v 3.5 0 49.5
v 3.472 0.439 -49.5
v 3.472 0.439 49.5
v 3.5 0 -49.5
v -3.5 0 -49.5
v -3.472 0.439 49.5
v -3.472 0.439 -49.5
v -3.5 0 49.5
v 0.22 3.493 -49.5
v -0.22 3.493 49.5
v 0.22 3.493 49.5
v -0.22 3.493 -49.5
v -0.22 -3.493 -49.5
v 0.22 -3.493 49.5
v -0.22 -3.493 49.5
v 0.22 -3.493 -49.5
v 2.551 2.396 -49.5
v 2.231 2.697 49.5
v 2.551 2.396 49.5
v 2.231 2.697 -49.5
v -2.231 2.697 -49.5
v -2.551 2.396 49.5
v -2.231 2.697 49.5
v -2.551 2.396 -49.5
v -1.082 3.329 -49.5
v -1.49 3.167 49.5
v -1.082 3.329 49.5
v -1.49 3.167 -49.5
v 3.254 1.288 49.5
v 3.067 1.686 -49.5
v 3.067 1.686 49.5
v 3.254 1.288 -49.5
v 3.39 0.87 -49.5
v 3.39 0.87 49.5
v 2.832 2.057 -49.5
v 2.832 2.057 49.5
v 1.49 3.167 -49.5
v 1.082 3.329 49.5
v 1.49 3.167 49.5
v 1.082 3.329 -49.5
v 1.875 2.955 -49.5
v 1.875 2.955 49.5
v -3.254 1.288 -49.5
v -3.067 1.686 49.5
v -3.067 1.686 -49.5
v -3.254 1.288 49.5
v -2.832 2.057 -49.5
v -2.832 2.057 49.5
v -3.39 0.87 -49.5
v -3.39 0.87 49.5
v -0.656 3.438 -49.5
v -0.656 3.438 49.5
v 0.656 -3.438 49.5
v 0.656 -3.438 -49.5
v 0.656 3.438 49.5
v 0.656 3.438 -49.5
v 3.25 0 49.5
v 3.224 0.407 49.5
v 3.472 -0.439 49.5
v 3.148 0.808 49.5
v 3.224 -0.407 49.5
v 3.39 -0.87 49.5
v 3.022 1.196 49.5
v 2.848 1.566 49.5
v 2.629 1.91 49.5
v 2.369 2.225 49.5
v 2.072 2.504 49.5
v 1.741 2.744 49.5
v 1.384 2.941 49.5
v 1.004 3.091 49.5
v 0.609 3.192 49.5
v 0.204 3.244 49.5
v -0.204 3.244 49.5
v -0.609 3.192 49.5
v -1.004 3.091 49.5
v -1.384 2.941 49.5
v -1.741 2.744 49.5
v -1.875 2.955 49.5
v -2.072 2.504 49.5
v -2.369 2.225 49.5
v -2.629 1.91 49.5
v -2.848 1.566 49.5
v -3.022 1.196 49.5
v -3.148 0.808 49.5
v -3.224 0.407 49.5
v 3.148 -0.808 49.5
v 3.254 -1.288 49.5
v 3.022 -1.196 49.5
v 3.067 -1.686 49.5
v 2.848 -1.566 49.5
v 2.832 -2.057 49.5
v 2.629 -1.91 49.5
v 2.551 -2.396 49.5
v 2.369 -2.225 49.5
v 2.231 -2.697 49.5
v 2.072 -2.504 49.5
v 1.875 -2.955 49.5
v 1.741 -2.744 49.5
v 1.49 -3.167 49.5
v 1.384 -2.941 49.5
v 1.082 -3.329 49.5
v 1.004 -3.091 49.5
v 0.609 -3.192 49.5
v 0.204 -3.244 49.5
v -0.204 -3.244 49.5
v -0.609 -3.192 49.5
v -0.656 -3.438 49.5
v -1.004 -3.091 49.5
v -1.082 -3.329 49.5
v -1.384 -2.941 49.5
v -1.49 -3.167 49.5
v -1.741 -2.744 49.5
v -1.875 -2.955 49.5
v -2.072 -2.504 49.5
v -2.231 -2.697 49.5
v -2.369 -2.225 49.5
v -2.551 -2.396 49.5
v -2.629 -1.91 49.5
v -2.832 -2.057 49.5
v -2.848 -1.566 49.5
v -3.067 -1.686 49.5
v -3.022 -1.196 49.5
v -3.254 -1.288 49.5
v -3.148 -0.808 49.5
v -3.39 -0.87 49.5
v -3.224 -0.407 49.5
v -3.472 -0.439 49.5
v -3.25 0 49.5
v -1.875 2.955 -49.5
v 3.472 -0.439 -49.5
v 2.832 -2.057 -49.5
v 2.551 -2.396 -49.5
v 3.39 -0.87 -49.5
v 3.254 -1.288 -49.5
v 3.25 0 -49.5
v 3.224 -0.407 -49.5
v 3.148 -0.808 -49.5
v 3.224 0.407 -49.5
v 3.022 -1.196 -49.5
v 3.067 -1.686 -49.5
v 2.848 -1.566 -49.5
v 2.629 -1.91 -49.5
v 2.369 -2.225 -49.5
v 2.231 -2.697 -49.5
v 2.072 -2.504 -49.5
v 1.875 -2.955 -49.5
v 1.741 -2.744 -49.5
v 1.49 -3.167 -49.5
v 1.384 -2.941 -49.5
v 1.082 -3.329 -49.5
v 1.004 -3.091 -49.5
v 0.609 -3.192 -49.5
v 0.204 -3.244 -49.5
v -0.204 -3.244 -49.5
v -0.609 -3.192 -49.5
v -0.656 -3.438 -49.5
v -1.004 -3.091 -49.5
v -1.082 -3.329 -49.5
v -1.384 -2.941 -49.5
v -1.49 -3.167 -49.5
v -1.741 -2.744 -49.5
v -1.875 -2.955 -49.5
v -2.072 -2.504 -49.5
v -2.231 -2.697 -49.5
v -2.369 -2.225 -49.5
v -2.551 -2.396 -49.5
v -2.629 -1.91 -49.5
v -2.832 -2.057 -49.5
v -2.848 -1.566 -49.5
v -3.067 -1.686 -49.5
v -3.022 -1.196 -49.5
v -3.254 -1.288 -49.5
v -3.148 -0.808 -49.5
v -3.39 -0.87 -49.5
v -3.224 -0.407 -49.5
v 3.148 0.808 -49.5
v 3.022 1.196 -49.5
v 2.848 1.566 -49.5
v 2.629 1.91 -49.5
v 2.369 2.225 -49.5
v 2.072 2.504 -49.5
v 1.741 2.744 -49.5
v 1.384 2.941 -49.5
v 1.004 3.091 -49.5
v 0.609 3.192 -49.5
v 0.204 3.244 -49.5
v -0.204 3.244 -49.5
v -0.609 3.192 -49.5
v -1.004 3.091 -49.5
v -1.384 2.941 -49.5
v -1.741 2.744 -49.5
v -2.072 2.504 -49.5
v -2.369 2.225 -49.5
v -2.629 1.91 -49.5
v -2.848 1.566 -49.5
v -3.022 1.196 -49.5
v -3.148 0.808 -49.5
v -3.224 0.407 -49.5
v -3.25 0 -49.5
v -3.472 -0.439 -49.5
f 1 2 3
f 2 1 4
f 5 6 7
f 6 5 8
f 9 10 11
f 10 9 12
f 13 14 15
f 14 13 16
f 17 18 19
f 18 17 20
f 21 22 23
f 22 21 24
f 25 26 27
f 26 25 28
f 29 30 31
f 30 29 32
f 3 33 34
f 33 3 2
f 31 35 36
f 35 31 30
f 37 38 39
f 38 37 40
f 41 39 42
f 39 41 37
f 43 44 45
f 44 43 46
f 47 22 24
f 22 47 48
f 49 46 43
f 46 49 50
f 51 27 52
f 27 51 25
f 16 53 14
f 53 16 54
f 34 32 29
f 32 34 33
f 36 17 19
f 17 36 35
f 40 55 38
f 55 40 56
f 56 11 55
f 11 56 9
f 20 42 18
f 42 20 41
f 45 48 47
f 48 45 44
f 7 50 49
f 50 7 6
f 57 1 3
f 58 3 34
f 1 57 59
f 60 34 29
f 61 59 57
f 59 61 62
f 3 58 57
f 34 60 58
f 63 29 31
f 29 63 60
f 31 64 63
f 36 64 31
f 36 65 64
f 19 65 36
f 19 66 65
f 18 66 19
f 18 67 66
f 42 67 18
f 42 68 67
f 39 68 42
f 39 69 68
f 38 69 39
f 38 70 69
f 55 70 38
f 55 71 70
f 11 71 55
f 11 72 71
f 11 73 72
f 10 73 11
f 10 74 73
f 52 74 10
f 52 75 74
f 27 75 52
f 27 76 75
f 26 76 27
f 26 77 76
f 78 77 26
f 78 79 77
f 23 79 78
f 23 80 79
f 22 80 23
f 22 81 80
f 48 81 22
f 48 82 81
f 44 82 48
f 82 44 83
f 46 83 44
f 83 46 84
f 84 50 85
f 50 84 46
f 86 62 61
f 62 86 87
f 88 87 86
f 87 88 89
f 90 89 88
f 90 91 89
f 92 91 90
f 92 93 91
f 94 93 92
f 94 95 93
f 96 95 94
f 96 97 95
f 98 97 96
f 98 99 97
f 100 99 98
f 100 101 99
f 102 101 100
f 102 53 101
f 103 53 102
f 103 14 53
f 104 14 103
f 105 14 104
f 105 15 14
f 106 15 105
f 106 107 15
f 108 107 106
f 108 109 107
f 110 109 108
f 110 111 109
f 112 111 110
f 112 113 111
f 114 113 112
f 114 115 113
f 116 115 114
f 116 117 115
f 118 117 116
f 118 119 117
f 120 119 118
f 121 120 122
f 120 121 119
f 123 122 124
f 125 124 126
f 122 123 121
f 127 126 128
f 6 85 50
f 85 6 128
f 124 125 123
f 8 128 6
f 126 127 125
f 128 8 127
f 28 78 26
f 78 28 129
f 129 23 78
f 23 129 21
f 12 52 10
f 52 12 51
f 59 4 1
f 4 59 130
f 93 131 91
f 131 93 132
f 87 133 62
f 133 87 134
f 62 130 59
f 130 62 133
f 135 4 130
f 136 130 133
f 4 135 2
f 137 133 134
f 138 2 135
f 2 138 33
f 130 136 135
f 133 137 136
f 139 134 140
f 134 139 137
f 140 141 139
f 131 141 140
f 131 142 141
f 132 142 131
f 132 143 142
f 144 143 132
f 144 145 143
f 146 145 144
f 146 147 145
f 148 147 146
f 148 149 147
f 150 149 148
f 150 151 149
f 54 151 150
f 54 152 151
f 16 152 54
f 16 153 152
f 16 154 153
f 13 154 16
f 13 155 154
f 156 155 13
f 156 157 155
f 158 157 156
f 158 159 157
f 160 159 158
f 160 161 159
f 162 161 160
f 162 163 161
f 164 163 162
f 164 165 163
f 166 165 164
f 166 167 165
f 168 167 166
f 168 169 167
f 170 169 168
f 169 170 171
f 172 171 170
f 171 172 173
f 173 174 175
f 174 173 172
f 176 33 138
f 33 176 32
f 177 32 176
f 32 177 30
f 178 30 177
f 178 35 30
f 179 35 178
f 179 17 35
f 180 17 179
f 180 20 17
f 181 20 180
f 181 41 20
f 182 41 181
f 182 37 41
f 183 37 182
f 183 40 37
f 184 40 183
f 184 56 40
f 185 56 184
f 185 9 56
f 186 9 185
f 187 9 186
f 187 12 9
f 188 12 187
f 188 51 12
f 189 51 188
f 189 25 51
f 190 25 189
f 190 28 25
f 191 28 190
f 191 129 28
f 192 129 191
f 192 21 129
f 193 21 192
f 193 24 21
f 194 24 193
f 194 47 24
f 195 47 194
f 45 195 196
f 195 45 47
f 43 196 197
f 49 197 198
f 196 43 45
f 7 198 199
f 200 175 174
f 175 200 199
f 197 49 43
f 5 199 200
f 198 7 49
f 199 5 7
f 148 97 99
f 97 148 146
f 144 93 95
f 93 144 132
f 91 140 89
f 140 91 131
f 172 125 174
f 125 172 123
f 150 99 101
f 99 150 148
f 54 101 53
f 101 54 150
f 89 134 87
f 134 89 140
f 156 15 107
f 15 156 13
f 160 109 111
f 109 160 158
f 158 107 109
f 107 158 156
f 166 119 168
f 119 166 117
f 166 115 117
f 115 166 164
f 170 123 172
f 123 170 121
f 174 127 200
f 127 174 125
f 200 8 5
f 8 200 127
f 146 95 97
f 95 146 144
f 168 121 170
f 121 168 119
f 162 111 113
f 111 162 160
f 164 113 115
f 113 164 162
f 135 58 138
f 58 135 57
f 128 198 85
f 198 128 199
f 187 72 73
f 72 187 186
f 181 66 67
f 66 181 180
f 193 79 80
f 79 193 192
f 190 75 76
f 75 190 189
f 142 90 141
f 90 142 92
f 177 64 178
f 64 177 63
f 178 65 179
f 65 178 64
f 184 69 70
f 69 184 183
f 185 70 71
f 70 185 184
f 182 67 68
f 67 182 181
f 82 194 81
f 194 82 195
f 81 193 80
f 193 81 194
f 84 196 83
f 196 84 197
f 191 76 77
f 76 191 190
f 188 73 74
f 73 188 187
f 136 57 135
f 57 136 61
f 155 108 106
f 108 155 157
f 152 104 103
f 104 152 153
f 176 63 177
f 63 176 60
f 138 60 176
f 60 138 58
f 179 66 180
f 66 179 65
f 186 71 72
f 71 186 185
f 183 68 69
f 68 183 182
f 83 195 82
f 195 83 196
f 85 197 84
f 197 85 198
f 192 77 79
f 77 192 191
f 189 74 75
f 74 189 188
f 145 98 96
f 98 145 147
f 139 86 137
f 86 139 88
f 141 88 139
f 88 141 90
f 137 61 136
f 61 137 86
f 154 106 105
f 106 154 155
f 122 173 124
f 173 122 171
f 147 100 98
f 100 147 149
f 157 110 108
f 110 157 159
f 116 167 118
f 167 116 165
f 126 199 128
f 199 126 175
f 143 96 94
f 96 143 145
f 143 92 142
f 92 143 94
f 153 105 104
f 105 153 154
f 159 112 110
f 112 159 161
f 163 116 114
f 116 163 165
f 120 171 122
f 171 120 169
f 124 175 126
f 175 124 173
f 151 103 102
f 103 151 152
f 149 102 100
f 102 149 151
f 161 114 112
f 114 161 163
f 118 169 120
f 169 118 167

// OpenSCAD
$fn = 50;


difference() {
	union() {
		translate(v = [0, 0, -49.5000000000]) {
			cylinder(h = 99, r = 3.5000000000);
		}
	}
	union() {
		translate(v = [0, 0, -100.0000000000]) {
			cylinder(h = 200, r = 3.2500000000);
		}
	}
}
